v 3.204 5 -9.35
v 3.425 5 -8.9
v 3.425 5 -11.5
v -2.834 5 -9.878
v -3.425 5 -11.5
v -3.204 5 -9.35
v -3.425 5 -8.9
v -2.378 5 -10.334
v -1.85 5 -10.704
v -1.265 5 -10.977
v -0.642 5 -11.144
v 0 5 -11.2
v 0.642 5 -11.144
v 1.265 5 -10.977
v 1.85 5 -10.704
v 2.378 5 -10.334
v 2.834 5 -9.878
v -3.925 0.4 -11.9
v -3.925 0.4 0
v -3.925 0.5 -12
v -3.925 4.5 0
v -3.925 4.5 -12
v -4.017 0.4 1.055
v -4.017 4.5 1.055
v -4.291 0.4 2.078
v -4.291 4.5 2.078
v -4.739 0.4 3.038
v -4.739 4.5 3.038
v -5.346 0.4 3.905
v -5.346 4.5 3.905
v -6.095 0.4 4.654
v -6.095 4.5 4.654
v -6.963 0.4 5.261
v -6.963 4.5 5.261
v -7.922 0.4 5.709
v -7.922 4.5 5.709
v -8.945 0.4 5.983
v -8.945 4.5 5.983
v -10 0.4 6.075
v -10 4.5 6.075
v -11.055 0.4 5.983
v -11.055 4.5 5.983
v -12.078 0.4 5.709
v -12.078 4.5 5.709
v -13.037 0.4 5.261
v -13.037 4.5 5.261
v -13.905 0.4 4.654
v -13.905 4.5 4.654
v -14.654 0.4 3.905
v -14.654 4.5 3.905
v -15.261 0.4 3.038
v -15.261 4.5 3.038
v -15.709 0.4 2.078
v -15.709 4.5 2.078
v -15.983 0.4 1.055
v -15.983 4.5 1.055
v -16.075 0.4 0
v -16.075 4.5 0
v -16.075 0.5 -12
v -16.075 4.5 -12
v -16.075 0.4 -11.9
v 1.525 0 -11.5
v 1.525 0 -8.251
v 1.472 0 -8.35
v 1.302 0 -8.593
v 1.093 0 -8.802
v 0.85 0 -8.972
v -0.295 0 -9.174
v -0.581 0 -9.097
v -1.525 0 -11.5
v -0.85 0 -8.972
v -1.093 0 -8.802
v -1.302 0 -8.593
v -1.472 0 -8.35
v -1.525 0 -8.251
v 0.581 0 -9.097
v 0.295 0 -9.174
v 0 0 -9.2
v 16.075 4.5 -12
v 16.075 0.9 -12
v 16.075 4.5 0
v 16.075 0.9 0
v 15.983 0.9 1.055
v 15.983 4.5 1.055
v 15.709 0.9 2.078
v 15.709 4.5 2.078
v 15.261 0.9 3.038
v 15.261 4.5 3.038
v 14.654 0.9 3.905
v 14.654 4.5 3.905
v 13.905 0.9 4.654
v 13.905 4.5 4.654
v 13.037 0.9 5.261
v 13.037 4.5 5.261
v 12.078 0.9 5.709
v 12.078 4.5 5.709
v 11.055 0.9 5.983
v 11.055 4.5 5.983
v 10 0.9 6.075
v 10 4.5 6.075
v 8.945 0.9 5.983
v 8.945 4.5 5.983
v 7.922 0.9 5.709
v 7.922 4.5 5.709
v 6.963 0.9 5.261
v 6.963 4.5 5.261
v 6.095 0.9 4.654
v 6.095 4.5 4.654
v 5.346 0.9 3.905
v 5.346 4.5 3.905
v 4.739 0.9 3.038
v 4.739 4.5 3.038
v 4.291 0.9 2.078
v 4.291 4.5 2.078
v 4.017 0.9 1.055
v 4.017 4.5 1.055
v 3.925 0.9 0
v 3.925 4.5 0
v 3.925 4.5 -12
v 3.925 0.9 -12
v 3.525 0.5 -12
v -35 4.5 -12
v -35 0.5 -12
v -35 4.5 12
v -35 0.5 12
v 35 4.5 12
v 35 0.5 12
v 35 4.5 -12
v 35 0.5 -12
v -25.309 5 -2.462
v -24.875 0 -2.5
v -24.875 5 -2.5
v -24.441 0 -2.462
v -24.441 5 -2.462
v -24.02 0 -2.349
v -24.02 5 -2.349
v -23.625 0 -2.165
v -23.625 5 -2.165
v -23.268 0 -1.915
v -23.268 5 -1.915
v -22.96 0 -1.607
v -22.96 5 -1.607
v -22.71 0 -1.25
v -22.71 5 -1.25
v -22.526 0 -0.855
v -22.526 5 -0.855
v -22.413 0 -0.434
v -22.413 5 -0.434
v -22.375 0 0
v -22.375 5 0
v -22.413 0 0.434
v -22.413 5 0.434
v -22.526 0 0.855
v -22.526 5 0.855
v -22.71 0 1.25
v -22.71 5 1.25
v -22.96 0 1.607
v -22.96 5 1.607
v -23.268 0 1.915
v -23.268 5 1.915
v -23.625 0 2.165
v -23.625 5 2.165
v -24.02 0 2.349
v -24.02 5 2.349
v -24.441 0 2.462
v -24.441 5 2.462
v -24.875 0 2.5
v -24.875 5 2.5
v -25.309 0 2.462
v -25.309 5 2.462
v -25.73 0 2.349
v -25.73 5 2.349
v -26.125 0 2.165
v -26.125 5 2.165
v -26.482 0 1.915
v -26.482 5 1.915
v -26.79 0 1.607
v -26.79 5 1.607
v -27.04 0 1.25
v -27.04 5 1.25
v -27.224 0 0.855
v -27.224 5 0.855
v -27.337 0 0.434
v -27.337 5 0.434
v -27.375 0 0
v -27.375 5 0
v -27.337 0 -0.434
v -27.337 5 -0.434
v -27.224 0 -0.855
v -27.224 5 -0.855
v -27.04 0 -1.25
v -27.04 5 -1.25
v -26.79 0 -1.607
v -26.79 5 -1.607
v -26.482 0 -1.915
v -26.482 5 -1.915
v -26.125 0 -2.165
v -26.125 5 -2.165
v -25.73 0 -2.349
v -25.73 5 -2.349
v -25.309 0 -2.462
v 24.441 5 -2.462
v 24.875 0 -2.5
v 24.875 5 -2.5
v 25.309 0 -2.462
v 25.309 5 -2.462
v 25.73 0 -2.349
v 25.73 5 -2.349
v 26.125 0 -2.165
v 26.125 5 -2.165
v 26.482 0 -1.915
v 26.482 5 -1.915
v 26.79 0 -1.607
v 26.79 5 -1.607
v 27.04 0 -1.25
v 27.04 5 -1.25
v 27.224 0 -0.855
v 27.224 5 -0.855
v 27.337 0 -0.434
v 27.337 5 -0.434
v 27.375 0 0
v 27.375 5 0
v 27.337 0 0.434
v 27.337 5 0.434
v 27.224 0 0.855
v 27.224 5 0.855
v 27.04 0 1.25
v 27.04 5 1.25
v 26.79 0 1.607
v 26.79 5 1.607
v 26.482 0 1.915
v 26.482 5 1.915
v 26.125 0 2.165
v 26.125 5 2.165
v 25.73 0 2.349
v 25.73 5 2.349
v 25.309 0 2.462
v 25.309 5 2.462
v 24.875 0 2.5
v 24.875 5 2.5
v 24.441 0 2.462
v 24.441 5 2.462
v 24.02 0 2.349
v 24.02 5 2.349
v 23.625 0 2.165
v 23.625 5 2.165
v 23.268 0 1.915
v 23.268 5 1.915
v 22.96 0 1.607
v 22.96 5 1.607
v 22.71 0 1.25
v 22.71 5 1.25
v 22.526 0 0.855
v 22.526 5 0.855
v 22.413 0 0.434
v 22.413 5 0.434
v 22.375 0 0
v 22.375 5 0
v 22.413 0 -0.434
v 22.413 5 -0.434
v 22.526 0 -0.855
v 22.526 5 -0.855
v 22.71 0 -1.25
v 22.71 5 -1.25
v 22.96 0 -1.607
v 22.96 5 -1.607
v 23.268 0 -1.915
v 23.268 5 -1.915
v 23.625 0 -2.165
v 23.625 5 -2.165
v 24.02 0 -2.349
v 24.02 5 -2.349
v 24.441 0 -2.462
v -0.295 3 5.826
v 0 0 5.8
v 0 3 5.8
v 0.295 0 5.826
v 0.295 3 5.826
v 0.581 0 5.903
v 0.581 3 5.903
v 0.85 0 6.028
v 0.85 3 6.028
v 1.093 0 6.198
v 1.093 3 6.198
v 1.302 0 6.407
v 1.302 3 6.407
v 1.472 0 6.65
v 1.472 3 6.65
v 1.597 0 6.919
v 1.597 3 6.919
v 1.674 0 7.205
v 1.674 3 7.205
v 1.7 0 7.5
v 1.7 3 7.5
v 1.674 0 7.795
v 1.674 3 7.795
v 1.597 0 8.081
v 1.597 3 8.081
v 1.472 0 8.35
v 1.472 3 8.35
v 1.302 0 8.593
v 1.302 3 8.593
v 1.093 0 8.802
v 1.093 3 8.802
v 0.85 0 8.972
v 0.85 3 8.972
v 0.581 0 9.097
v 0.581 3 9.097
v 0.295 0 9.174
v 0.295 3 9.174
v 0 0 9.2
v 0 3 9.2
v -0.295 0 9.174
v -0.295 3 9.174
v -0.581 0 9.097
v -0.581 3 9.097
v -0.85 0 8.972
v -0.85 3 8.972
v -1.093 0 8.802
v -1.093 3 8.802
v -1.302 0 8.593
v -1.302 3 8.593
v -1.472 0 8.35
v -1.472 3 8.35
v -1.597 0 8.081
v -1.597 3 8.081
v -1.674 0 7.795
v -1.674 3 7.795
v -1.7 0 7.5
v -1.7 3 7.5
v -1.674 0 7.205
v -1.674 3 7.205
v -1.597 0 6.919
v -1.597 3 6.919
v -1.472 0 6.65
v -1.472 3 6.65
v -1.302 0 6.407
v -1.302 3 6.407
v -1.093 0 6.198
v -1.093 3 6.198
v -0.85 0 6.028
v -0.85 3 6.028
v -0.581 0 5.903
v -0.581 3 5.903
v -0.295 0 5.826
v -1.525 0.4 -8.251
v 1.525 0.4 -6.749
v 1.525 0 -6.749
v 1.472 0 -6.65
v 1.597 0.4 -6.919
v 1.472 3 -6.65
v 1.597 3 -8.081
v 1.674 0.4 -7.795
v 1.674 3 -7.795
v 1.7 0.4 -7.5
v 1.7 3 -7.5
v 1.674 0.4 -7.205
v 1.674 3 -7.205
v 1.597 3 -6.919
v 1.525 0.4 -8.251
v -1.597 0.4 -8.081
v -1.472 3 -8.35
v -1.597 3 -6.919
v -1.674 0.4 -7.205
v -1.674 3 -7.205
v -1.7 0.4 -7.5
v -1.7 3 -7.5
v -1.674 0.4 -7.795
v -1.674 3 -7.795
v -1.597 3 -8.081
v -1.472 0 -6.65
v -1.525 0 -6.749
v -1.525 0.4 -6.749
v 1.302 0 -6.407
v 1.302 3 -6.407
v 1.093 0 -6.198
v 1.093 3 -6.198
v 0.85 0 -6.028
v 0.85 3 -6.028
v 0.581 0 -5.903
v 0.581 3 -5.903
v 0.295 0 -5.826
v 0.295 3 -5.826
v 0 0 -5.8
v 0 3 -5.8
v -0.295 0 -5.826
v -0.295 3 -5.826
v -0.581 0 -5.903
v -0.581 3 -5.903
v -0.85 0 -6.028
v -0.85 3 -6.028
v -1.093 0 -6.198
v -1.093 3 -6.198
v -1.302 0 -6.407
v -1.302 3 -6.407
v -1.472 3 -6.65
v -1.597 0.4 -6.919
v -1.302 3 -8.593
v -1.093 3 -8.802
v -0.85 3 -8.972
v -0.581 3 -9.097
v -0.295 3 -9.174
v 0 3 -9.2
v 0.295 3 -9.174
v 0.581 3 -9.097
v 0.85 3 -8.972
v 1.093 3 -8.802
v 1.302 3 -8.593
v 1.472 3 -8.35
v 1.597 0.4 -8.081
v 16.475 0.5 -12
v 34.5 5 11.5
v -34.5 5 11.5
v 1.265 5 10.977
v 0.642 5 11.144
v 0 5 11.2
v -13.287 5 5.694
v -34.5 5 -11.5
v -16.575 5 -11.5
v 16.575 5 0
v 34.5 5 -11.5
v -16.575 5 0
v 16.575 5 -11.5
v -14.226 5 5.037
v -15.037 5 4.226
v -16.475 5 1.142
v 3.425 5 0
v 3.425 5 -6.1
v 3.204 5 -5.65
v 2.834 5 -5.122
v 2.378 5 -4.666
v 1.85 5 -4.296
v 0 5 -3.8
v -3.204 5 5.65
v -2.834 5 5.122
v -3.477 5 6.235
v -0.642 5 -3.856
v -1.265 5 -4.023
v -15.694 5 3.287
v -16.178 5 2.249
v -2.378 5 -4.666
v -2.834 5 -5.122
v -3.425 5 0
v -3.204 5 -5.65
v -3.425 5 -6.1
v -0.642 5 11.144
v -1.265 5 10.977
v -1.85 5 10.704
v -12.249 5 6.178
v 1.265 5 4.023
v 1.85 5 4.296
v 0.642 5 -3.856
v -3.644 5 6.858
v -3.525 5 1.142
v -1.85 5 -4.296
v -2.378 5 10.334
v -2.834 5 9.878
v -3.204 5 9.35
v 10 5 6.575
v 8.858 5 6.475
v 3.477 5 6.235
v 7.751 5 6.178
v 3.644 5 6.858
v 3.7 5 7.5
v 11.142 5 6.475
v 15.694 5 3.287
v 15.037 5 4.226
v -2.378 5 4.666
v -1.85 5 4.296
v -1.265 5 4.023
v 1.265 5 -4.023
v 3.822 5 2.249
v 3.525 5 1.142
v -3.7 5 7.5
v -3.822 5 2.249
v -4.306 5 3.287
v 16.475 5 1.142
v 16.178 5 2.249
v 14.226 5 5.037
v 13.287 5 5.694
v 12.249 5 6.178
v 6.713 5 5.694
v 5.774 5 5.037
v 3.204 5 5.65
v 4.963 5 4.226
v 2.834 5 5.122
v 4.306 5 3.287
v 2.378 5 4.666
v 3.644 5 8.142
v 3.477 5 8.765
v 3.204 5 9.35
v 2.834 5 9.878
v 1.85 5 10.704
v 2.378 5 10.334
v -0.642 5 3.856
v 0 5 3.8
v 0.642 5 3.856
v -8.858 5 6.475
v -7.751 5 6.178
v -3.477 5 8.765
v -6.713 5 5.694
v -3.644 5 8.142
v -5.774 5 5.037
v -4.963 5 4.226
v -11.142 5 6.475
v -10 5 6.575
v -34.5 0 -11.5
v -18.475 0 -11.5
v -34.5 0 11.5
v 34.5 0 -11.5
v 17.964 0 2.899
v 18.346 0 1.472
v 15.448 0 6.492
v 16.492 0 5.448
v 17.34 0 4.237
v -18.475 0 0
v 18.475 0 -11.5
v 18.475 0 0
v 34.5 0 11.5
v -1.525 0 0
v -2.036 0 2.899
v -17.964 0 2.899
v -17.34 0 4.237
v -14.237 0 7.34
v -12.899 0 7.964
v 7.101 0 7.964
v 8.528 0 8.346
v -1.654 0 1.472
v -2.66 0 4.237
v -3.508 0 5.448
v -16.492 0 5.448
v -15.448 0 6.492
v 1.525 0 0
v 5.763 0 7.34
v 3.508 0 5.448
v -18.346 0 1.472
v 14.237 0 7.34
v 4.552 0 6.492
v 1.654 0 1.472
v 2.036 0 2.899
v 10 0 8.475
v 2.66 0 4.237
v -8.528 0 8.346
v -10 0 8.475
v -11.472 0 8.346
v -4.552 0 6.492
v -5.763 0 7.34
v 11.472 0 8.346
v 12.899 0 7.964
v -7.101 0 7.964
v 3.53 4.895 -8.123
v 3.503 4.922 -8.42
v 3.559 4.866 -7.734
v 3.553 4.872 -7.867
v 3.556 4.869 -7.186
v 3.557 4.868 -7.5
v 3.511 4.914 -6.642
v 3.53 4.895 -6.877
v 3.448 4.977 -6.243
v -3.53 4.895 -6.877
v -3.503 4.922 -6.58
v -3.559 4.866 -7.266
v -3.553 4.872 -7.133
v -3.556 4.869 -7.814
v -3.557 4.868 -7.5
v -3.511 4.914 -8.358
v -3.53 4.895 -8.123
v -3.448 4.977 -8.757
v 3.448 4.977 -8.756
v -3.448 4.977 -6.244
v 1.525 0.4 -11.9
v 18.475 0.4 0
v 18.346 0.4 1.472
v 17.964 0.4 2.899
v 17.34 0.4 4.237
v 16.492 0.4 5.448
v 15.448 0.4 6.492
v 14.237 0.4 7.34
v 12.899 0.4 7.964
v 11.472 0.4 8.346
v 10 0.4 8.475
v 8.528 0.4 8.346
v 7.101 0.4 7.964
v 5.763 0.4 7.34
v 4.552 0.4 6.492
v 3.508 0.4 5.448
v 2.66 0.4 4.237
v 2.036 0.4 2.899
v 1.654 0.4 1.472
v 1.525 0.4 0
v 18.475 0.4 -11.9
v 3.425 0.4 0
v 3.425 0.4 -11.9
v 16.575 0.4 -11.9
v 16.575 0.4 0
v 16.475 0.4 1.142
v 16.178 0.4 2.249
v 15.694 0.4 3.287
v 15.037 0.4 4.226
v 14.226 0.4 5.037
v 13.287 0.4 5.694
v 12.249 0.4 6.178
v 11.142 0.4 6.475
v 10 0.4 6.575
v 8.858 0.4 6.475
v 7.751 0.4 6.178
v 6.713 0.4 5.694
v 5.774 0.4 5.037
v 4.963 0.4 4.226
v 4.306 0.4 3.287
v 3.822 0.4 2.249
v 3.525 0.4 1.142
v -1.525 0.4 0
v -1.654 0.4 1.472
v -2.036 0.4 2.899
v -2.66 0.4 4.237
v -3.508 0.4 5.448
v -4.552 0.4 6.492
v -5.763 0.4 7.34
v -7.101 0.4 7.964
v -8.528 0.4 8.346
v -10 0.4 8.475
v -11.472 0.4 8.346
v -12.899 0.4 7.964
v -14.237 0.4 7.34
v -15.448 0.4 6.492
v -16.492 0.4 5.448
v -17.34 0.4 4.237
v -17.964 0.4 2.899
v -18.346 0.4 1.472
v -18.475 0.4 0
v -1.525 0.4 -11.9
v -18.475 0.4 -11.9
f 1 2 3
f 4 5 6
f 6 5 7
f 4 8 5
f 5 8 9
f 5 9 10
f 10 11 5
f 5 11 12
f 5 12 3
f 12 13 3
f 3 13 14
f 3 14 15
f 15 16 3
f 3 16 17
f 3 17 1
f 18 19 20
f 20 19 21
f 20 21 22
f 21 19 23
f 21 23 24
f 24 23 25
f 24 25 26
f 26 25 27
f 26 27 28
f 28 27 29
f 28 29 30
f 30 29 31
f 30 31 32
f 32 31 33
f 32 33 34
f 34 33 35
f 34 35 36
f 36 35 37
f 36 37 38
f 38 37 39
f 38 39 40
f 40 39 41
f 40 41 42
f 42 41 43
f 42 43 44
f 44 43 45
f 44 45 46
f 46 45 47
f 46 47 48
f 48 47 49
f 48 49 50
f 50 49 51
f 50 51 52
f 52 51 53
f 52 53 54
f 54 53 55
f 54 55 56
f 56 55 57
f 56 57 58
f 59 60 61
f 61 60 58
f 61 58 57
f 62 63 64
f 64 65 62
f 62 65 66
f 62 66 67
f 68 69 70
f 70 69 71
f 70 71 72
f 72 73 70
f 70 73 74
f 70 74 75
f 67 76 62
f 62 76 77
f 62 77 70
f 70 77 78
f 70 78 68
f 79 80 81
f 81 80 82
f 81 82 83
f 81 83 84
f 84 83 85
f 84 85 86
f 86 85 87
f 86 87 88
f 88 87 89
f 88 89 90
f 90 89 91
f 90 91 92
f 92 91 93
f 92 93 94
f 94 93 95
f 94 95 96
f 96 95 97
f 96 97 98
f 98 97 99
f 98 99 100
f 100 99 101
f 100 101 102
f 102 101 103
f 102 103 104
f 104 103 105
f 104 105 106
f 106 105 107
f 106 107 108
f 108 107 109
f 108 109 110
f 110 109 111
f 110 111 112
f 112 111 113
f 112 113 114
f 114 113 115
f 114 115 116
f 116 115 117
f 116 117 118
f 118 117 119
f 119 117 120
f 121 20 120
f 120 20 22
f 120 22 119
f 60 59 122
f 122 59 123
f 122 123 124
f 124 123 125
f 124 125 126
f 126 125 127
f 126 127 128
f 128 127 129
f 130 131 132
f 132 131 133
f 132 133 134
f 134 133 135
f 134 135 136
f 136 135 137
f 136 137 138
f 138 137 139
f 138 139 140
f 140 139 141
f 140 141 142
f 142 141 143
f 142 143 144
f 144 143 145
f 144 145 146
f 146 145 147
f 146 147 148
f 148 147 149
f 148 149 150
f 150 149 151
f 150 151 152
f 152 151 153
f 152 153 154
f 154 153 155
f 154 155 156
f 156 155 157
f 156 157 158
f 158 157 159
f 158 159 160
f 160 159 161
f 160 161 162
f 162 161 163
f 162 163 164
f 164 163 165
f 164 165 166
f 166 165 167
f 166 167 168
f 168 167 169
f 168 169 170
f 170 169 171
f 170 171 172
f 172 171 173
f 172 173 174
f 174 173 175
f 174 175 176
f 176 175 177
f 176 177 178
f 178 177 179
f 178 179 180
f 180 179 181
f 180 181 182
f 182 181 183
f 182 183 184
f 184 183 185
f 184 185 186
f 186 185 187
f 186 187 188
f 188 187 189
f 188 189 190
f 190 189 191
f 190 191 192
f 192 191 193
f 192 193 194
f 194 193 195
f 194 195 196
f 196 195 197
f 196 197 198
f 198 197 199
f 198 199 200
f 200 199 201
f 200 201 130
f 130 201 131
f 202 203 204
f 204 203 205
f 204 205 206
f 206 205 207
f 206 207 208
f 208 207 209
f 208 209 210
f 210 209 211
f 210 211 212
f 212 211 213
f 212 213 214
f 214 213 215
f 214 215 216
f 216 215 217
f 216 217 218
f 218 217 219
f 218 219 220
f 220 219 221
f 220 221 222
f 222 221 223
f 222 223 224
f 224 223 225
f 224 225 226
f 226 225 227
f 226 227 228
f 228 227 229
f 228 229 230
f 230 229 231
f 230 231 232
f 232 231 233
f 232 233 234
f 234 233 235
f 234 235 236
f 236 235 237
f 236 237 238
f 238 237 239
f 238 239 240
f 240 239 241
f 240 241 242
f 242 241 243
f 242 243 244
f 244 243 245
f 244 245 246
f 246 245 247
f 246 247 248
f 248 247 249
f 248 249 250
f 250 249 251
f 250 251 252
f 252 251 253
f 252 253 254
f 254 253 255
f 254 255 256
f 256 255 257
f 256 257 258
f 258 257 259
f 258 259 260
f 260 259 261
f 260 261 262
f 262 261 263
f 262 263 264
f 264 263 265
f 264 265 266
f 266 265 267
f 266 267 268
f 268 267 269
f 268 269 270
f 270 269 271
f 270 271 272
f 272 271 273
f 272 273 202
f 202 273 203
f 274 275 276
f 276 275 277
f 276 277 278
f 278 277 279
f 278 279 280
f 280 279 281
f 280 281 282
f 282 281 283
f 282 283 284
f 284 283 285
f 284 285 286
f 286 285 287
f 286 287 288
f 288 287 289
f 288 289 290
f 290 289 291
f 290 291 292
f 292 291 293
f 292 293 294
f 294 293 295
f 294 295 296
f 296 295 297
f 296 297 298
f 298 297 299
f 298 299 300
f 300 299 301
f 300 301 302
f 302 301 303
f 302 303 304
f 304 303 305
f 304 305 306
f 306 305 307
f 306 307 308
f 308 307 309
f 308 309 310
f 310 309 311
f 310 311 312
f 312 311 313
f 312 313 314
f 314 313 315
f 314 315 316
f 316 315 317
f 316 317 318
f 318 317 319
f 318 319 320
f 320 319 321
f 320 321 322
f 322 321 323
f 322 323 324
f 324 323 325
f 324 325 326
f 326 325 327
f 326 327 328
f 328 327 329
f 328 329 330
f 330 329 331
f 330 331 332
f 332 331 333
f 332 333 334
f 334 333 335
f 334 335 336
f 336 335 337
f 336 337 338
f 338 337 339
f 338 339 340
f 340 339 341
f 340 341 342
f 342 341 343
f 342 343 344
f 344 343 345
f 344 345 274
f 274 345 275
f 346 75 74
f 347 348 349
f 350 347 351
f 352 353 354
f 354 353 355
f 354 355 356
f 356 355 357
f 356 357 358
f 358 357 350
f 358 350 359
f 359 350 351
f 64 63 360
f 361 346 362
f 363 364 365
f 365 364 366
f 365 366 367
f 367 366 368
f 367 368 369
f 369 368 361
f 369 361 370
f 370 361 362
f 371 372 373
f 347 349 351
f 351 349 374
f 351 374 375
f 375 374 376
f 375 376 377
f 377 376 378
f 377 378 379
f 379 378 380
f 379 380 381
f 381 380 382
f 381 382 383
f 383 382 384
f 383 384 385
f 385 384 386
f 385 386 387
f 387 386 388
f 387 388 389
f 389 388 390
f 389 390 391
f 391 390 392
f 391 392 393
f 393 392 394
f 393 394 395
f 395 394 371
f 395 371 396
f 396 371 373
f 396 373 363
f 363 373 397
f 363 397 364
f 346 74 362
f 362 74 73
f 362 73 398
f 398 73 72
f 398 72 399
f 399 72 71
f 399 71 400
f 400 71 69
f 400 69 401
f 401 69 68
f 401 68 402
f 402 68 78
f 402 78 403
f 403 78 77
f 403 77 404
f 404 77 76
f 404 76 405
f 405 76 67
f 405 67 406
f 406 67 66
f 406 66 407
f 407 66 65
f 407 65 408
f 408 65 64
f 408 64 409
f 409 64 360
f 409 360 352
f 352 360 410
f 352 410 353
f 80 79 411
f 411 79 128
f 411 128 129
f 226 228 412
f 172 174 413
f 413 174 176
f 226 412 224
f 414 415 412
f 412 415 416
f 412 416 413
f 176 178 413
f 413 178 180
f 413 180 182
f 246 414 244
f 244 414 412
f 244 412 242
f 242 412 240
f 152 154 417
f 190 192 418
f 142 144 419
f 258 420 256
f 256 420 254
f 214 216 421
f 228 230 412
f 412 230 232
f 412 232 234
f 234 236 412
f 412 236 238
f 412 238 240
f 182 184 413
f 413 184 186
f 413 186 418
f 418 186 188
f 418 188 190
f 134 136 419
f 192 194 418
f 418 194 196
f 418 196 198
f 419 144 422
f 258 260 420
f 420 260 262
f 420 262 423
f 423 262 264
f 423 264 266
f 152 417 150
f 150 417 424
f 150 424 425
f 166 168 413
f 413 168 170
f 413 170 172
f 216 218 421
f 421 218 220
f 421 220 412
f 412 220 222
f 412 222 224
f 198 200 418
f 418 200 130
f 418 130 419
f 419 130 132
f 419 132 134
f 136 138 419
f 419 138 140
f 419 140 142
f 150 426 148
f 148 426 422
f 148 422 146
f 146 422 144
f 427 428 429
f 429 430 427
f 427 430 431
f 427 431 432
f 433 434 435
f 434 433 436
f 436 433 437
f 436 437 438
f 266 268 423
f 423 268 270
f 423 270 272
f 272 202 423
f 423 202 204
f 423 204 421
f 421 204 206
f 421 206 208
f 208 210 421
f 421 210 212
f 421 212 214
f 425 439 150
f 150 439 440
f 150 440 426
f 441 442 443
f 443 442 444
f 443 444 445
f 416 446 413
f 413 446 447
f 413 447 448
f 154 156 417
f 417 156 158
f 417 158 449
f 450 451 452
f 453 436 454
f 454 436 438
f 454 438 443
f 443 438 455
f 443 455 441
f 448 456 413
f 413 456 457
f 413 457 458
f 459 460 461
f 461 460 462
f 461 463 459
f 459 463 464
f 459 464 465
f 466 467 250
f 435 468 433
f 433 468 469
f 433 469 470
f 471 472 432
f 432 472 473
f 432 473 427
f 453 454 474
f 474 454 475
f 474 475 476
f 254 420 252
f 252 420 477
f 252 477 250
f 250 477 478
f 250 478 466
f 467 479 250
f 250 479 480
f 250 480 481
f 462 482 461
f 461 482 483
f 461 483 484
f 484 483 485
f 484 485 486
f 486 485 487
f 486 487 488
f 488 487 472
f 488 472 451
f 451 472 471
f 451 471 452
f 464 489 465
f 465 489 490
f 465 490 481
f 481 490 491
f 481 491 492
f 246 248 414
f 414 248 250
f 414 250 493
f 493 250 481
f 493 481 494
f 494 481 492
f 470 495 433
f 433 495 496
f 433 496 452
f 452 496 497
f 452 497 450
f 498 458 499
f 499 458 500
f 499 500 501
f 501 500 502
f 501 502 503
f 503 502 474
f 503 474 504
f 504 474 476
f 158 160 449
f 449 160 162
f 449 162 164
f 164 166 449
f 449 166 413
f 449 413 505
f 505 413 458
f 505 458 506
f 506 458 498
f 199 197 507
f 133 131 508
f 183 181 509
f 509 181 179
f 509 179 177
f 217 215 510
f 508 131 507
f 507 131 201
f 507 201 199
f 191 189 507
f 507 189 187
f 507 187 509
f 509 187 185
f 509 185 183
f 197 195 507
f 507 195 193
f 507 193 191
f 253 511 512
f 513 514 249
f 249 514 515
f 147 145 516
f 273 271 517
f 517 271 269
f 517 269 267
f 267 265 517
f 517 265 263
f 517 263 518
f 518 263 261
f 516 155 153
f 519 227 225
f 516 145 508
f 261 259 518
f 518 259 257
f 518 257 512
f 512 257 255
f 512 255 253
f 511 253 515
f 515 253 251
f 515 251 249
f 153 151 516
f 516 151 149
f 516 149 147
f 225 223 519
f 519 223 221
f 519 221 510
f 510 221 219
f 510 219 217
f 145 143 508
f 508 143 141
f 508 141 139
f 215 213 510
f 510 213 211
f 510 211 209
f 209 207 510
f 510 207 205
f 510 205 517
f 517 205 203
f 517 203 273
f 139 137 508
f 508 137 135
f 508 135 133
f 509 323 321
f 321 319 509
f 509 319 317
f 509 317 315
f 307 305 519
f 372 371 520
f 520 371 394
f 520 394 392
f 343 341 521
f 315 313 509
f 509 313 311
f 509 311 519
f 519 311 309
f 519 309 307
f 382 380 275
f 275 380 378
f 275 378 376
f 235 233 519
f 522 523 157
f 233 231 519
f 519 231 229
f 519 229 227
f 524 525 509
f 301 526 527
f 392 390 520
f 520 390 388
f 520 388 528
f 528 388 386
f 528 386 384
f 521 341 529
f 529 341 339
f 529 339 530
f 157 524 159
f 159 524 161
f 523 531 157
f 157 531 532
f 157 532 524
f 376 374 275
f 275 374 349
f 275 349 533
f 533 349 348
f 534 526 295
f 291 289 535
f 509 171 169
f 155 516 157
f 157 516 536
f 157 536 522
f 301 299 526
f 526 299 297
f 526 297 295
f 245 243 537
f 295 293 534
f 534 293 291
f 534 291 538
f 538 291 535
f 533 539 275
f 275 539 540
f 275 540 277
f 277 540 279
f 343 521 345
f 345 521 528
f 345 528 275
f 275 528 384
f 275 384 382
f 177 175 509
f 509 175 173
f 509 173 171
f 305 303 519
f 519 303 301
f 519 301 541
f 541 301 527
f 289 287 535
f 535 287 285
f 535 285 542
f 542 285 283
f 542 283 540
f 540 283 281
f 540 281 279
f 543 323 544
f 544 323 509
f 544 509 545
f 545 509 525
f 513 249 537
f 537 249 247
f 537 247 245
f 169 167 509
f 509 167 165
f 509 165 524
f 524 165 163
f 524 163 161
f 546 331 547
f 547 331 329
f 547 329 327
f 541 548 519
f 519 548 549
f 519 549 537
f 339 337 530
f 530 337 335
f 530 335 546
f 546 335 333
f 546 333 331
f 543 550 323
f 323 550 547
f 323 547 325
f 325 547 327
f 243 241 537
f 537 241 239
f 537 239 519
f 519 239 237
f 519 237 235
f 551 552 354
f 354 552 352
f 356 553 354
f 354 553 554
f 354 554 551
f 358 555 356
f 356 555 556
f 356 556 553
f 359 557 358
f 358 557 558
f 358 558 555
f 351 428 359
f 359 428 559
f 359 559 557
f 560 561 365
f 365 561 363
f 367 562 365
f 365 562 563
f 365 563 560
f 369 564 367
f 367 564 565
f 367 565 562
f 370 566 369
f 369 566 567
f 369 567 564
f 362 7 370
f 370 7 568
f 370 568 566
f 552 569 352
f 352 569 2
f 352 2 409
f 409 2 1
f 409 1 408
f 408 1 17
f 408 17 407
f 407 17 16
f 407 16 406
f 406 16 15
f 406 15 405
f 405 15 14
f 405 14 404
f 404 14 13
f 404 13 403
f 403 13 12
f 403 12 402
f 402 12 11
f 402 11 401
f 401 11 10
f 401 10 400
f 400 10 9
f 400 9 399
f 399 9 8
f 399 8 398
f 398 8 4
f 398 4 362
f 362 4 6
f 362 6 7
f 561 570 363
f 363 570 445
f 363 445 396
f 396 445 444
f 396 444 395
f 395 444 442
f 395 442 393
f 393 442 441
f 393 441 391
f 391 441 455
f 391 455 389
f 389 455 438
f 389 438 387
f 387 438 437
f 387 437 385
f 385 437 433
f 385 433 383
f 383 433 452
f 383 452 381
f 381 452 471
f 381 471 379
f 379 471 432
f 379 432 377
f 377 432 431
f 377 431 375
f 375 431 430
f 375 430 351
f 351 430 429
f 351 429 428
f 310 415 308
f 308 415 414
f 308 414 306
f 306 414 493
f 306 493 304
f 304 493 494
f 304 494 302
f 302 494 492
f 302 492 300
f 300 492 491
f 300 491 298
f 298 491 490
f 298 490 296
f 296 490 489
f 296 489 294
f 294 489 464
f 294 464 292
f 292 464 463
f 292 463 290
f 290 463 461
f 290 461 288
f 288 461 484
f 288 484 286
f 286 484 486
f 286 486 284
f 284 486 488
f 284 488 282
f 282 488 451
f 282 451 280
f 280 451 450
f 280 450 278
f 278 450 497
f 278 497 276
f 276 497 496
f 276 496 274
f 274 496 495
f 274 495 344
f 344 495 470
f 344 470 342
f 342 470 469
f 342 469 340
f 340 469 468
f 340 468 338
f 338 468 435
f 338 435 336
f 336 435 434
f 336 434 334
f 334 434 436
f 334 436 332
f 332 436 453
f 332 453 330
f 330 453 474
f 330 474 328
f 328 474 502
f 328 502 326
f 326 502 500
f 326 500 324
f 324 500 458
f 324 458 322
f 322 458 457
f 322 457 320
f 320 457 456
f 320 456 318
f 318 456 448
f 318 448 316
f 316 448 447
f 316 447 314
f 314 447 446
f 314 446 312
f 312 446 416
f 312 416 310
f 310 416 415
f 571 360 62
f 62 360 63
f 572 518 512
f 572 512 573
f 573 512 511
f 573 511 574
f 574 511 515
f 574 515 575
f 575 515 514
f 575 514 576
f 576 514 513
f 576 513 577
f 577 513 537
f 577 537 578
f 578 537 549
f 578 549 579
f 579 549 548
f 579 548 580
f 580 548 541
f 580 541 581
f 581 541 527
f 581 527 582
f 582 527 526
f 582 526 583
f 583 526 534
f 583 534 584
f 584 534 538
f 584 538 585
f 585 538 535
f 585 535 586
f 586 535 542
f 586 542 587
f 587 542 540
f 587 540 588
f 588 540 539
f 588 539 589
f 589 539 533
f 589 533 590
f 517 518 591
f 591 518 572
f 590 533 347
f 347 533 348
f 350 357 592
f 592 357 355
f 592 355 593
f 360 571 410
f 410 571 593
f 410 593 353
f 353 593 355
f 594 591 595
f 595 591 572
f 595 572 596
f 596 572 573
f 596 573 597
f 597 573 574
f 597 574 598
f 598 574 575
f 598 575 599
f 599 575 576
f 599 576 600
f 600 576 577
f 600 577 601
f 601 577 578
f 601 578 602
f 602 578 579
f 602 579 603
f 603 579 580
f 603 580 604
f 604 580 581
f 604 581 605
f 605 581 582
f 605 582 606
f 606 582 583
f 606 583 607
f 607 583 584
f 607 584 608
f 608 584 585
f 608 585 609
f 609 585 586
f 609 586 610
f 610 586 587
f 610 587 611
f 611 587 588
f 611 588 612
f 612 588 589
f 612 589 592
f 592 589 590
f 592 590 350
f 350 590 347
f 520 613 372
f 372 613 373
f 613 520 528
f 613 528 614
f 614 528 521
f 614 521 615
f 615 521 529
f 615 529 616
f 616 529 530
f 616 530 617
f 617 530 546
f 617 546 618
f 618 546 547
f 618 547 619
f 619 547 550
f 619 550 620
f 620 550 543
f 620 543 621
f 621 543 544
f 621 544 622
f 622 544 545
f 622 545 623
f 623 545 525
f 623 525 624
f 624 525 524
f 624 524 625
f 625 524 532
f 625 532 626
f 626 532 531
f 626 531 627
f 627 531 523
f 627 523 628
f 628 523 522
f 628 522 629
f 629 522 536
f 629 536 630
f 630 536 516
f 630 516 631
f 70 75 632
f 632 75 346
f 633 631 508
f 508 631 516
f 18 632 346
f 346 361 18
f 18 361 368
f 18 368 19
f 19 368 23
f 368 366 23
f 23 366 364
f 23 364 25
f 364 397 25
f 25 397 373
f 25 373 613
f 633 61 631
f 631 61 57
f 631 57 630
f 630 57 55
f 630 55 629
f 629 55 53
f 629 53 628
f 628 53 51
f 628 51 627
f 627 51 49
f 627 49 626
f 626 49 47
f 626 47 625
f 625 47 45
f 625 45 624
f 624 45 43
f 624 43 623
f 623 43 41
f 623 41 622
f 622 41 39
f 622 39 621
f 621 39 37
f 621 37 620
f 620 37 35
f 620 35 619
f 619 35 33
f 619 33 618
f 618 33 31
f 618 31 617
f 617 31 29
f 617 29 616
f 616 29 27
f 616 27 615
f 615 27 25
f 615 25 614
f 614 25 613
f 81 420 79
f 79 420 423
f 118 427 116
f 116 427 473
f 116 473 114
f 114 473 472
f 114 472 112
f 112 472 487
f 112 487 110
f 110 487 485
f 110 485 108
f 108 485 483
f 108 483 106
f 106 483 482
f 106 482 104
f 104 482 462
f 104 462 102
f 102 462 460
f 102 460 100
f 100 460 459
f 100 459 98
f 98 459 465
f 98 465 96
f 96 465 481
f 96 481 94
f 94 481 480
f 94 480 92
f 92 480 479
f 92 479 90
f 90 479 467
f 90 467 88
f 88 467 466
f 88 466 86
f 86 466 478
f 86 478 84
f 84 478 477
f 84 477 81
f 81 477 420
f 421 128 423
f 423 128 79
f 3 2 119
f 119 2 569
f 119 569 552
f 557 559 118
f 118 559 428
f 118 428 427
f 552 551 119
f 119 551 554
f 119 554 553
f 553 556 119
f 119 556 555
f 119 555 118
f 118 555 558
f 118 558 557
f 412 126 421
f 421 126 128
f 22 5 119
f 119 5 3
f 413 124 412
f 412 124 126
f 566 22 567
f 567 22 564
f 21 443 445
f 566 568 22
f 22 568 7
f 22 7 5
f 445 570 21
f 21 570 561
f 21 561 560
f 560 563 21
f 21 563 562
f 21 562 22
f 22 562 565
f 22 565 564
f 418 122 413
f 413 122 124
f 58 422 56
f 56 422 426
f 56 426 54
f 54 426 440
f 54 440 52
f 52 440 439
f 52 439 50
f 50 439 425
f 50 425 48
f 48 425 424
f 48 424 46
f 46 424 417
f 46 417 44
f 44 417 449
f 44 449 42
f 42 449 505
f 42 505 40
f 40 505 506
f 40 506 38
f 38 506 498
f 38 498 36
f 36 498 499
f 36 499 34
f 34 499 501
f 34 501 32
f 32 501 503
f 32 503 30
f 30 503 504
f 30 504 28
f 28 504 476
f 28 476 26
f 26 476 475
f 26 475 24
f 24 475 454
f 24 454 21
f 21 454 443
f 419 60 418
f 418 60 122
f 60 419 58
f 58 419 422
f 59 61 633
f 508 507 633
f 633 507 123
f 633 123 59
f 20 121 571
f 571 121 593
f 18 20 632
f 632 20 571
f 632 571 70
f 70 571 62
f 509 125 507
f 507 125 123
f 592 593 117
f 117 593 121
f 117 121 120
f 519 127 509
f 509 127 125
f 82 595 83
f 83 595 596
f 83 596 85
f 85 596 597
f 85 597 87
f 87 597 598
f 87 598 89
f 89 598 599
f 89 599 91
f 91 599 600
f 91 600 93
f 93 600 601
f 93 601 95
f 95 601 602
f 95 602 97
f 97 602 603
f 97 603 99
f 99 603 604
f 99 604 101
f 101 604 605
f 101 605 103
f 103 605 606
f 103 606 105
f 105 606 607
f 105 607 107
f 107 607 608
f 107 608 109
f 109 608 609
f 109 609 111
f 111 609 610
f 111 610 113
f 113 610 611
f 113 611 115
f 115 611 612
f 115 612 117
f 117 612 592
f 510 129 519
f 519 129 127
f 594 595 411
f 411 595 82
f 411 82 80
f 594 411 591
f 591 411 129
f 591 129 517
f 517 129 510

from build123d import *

# Parameters (mm, degrees)
SKETCH1_R           = 1.7
SKETCH1_R_2         = 2.5
BOSS_EXTRUDE1_DEPTH = 5
CHAMFER2_SIZE       = 2
CUT_EXTRUDE1_DEPTH  = 0.4
CHAMFER1_SIZE       = 0.5


with BuildPart() as part:
    # Sketch1 → Boss-Extrude1 (new body)
    with BuildSketch(Plane(origin=(0, 0, 0), x_dir=(1, 0, 0), z_dir=(0, 1, 0))):
        with BuildLine():
            Line((-35, -12), (35, -12))
            Line((35, -12), (35, 12))
            Line((35, 12), (16.075, 12))
            Line((16.075, 12), (16.075, 0))
            ThreePointArc((16.075, 0), (10, -6.075), (3.925, 0))
            Line((3.925, 0), (3.925, 12))
            Line((3.925, 12), (-3.925, 12))
            Line((-3.925, 12), (-3.925, 0))
            ThreePointArc((-3.925, 0), (-10, -6.075), (-16.075, 0))
            Line((-16.075, 0), (-16.075, 12))
            Line((-16.075, 12), (-35, 12))
            Line((-35, 12), (-35, -12))
        make_face()
        with Locations(Location((0, -7.5, 0), (0, 0, 270))):
            Circle(SKETCH1_R, mode=Mode.SUBTRACT)
        with Locations(Location((-24.875, 0, 0), (0, 0, 270))):
            Circle(SKETCH1_R_2, mode=Mode.SUBTRACT)
        with Locations(Location((24.875, 0, 0), (0, 0, 270))):
            Circle(SKETCH1_R_2, mode=Mode.SUBTRACT)
        with Locations(Location((0, 7.5, 0), (0, 0, 270))):
            Circle(SKETCH1_R, mode=Mode.SUBTRACT)
    extrude(amount=BOSS_EXTRUDE1_DEPTH)

    # Chamfer2
    chamfer2_edges = [part.edges().sort_by_distance(p)[0] for p in [
        (0, 5, 5.8),
        (0, 5, -9.2),
    ]]
    chamfer(chamfer2_edges, length=CHAMFER2_SIZE)

    # Sketch2 → Cut-Extrude1 (cut)
    with BuildSketch(Plane.XZ):
        with BuildLine():
            Line((-1.525, 0), (-1.525, -12))
            Line((-1.525, -12), (-18.475, -12))
            Line((-18.475, -12), (-18.475, 0))
            ThreePointArc((-18.475, 0), (-10, 8.475), (-1.525, 0))
        make_face()
        with BuildLine():
            Line((18.475, -12), (1.525, -12))
            Line((1.525, -12), (1.525, 0))
            ThreePointArc((1.525, 0), (10, 8.475), (18.475, 0))
            Line((18.475, 0), (18.475, -12))
        make_face()
    extrude(amount=-CUT_EXTRUDE1_DEPTH, mode=Mode.SUBTRACT)

    # Chamfer1
    chamfer1_edges = [part.edges().sort_by_distance(p)[0] for p in [
        (0, 0, 12),
    ]]
    chamfer(chamfer1_edges, length=CHAMFER1_SIZE)
    chamfer1_2_edges = [part.edges().sort_by_distance(p)[0] for p in [
        (0, 5, 12),
    ]]
    chamfer(chamfer1_2_edges, length=CHAMFER1_SIZE)
    chamfer1_3_edges = [part.edges().sort_by_distance(p)[0] for p in [
        (16.075, 0.4, -6),
        (10, 0.4, 6.075),
        (3.925, 0.4, -6),
    ]]
    chamfer(chamfer1_3_edges, length=CHAMFER1_SIZE)
    chamfer1_4_edges = [part.edges().sort_by_distance(p)[0] for p in [
        (35, 0, -0.25),
    ]]
    chamfer(chamfer1_4_edges, length=CHAMFER1_SIZE)
    chamfer1_5_edges = [part.edges().sort_by_distance(p)[0] for p in [
        (-35, 0, -0.25),
    ]]
    chamfer(chamfer1_5_edges, length=CHAMFER1_SIZE)
    chamfer1_6_edges = [part.edges().sort_by_distance(p)[0] for p in [
        (-35, 5, -0.25),
    ]]
    chamfer(chamfer1_6_edges, length=CHAMFER1_SIZE)
    chamfer1_7_edges = [part.edges().sort_by_distance(p)[0] for p in [
        (35, 5, -0.25),
    ]]
    chamfer(chamfer1_7_edges, length=CHAMFER1_SIZE)
    chamfer1_8_edges = [part.edges().sort_by_distance(p)[0] for p in [
        (25.2875, 5, -12),
    ]]
    chamfer(chamfer1_8_edges, length=CHAMFER1_SIZE)
    chamfer1_9_edges = [part.edges().sort_by_distance(p)[0] for p in [
        (-25.2875, 5, -12),
    ]]
    chamfer(chamfer1_9_edges, length=CHAMFER1_SIZE)
    chamfer1_10_edges = [part.edges().sort_by_distance(p)[0] for p in [
        (26.4875, 0, -12),
    ]]
    chamfer(chamfer1_10_edges, length=CHAMFER1_SIZE)
    chamfer1_11_edges = [part.edges().sort_by_distance(p)[0] for p in [
        (-26.4875, 0, -12),
    ]]
    chamfer(chamfer1_11_edges, length=CHAMFER1_SIZE)
    chamfer1_12_edges = [part.edges().sort_by_distance(p)[0] for p in [
        (0, 5, -12),
    ]]
    chamfer(chamfer1_12_edges, length=CHAMFER1_SIZE)
    chamfer1_13_edges = [part.edges().sort_by_distance(p)[0] for p in [
        (0, 0, -12),
    ]]
    chamfer(chamfer1_13_edges, length=CHAMFER1_SIZE)
    # the kernel refuses this chamfer: 0.5 mm, written as the material it takes off along each edge
    with BuildSketch(Plane(origin=(16.075, 5, -12.785841494), x_dir=(0.9996219169112968, 0.02749587661058555, 0), z_dir=(0, 0, 1)), Plane(origin=(3.925, 5, 0), x_dir=(-0.9996219169112968, 0.027495876610585623, 0), z_dir=(0, 0, -1))) as chamfer1_14_piece_1:
        with BuildLine():
            Line((0.514336598, 0), (-0.028273577, -0.513558897))
            Line((-0.028273577, -0.513558897), (-0.038269797, -0.513283938))
            ThreePointArc((-0.038269797, -0.513283938), (-0.017064614, -0.256698915), (-0.009996219, 0.000274959))
            Line((-0.009996219, 0.000274959), (0.000274959, 0.009996219))
            ThreePointArc((0.000274959, 0.009996219), (0.257248832, 0.002927825), (0.514611556, 0.009996219))
            Line((0.514611556, 0.009996219), (0.514336598, 0))
        make_face()
    extrude(amount=12.785841494, mode=Mode.SUBTRACT)
    with BuildSketch(Plane(origin=(10, 5, 0), x_dir=(1, 0, 0), z_dir=(0, 0, -1))) as chamfer1_14_piece_2:
        with BuildLine():
            Line((6.589142136, -0.014142136), (6.060857864, 0.514142136))
            Line((6.060857864, 0.514142136), (6.050857864, 0.514142136))
            ThreePointArc((6.050857864, 0.514142136), (6.065, 0.257071068), (6.065, 0))
            Line((6.065, 0), (6.075, -0.01))
            ThreePointArc((6.075, -0.01), (6.332071068, -0.01), (6.589142136, -0.024142136))
            Line((6.589142136, -0.024142136), (6.589142136, -0.014142136))
        make_face()
    revolve(axis=Axis((10, 5, 0), (0, -1, 0)), revolution_arc=180, mode=Mode.SUBTRACT)
    # the kernel refuses this chamfer: 0.5 mm, written as the material it takes off along each edge
    with BuildSketch(Plane(origin=(-3.925, 5, -12.785841494), x_dir=(-0.02749587661058651, -0.9996219169112968, 0), z_dir=(0, 0, 1))) as chamfer1_15_piece_1:
        with BuildLine():
            Line((0.514336598, 0), (-0.028273577, 0.513558897))
            Line((-0.028273577, 0.513558897), (-0.038269797, 0.513283938))
            ThreePointArc((-0.038269797, 0.513283938), (-0.017064614, 0.256698915), (-0.009996219, -0.000274959))
            Line((-0.009996219, -0.000274959), (0.000274959, -0.009996219))
            ThreePointArc((0.000274959, -0.009996219), (0.257248832, -0.002927825), (0.514611556, -0.009996219))
            Line((0.514611556, -0.009996219), (0.514336598, 0))
        make_face()
    extrude(amount=12.785841494, mode=Mode.SUBTRACT)
    with BuildSketch(Plane(origin=(-10, 5, 0), x_dir=(1, 0, 0), z_dir=(0, 0, -1))) as chamfer1_15_piece_2:
        with BuildLine():
            Line((6.589142136, -0.014142136), (6.060857864, 0.514142136))
            Line((6.060857864, 0.514142136), (6.050857864, 0.514142136))
            ThreePointArc((6.050857864, 0.514142136), (6.065, 0.257071068), (6.065, 0))
            Line((6.065, 0), (6.075, -0.01))
            ThreePointArc((6.075, -0.01), (6.332071068, -0.01), (6.589142136, -0.024142136))
            Line((6.589142136, -0.024142136), (6.589142136, -0.014142136))
        make_face()
    revolve(axis=Axis((-10, 5, 0), (0, -1, 0)), revolution_arc=180, mode=Mode.SUBTRACT)
    with BuildSketch(Plane(origin=(-16.075, 5, 0), x_dir=(-0.9996219169112968, 0.02749587661058555, 0), z_dir=(0, 0, -1))) as chamfer1_15_piece_3:
        with BuildLine():
            Line((0.514336598, 0), (-0.028273577, -0.513558897))
            Line((-0.028273577, -0.513558897), (-0.038269797, -0.513283938))
            ThreePointArc((-0.038269797, -0.513283938), (-0.017064614, -0.256698915), (-0.009996219, 0.000274959))
            Line((-0.009996219, 0.000274959), (0.000274959, 0.009996219))
            ThreePointArc((0.000274959, 0.009996219), (0.257248832, 0.002927825), (0.514611556, 0.009996219))
            Line((0.514611556, 0.009996219), (0.514336598, 0))
        make_face()
    extrude(amount=12.785841494, mode=Mode.SUBTRACT)


solid = part.part
